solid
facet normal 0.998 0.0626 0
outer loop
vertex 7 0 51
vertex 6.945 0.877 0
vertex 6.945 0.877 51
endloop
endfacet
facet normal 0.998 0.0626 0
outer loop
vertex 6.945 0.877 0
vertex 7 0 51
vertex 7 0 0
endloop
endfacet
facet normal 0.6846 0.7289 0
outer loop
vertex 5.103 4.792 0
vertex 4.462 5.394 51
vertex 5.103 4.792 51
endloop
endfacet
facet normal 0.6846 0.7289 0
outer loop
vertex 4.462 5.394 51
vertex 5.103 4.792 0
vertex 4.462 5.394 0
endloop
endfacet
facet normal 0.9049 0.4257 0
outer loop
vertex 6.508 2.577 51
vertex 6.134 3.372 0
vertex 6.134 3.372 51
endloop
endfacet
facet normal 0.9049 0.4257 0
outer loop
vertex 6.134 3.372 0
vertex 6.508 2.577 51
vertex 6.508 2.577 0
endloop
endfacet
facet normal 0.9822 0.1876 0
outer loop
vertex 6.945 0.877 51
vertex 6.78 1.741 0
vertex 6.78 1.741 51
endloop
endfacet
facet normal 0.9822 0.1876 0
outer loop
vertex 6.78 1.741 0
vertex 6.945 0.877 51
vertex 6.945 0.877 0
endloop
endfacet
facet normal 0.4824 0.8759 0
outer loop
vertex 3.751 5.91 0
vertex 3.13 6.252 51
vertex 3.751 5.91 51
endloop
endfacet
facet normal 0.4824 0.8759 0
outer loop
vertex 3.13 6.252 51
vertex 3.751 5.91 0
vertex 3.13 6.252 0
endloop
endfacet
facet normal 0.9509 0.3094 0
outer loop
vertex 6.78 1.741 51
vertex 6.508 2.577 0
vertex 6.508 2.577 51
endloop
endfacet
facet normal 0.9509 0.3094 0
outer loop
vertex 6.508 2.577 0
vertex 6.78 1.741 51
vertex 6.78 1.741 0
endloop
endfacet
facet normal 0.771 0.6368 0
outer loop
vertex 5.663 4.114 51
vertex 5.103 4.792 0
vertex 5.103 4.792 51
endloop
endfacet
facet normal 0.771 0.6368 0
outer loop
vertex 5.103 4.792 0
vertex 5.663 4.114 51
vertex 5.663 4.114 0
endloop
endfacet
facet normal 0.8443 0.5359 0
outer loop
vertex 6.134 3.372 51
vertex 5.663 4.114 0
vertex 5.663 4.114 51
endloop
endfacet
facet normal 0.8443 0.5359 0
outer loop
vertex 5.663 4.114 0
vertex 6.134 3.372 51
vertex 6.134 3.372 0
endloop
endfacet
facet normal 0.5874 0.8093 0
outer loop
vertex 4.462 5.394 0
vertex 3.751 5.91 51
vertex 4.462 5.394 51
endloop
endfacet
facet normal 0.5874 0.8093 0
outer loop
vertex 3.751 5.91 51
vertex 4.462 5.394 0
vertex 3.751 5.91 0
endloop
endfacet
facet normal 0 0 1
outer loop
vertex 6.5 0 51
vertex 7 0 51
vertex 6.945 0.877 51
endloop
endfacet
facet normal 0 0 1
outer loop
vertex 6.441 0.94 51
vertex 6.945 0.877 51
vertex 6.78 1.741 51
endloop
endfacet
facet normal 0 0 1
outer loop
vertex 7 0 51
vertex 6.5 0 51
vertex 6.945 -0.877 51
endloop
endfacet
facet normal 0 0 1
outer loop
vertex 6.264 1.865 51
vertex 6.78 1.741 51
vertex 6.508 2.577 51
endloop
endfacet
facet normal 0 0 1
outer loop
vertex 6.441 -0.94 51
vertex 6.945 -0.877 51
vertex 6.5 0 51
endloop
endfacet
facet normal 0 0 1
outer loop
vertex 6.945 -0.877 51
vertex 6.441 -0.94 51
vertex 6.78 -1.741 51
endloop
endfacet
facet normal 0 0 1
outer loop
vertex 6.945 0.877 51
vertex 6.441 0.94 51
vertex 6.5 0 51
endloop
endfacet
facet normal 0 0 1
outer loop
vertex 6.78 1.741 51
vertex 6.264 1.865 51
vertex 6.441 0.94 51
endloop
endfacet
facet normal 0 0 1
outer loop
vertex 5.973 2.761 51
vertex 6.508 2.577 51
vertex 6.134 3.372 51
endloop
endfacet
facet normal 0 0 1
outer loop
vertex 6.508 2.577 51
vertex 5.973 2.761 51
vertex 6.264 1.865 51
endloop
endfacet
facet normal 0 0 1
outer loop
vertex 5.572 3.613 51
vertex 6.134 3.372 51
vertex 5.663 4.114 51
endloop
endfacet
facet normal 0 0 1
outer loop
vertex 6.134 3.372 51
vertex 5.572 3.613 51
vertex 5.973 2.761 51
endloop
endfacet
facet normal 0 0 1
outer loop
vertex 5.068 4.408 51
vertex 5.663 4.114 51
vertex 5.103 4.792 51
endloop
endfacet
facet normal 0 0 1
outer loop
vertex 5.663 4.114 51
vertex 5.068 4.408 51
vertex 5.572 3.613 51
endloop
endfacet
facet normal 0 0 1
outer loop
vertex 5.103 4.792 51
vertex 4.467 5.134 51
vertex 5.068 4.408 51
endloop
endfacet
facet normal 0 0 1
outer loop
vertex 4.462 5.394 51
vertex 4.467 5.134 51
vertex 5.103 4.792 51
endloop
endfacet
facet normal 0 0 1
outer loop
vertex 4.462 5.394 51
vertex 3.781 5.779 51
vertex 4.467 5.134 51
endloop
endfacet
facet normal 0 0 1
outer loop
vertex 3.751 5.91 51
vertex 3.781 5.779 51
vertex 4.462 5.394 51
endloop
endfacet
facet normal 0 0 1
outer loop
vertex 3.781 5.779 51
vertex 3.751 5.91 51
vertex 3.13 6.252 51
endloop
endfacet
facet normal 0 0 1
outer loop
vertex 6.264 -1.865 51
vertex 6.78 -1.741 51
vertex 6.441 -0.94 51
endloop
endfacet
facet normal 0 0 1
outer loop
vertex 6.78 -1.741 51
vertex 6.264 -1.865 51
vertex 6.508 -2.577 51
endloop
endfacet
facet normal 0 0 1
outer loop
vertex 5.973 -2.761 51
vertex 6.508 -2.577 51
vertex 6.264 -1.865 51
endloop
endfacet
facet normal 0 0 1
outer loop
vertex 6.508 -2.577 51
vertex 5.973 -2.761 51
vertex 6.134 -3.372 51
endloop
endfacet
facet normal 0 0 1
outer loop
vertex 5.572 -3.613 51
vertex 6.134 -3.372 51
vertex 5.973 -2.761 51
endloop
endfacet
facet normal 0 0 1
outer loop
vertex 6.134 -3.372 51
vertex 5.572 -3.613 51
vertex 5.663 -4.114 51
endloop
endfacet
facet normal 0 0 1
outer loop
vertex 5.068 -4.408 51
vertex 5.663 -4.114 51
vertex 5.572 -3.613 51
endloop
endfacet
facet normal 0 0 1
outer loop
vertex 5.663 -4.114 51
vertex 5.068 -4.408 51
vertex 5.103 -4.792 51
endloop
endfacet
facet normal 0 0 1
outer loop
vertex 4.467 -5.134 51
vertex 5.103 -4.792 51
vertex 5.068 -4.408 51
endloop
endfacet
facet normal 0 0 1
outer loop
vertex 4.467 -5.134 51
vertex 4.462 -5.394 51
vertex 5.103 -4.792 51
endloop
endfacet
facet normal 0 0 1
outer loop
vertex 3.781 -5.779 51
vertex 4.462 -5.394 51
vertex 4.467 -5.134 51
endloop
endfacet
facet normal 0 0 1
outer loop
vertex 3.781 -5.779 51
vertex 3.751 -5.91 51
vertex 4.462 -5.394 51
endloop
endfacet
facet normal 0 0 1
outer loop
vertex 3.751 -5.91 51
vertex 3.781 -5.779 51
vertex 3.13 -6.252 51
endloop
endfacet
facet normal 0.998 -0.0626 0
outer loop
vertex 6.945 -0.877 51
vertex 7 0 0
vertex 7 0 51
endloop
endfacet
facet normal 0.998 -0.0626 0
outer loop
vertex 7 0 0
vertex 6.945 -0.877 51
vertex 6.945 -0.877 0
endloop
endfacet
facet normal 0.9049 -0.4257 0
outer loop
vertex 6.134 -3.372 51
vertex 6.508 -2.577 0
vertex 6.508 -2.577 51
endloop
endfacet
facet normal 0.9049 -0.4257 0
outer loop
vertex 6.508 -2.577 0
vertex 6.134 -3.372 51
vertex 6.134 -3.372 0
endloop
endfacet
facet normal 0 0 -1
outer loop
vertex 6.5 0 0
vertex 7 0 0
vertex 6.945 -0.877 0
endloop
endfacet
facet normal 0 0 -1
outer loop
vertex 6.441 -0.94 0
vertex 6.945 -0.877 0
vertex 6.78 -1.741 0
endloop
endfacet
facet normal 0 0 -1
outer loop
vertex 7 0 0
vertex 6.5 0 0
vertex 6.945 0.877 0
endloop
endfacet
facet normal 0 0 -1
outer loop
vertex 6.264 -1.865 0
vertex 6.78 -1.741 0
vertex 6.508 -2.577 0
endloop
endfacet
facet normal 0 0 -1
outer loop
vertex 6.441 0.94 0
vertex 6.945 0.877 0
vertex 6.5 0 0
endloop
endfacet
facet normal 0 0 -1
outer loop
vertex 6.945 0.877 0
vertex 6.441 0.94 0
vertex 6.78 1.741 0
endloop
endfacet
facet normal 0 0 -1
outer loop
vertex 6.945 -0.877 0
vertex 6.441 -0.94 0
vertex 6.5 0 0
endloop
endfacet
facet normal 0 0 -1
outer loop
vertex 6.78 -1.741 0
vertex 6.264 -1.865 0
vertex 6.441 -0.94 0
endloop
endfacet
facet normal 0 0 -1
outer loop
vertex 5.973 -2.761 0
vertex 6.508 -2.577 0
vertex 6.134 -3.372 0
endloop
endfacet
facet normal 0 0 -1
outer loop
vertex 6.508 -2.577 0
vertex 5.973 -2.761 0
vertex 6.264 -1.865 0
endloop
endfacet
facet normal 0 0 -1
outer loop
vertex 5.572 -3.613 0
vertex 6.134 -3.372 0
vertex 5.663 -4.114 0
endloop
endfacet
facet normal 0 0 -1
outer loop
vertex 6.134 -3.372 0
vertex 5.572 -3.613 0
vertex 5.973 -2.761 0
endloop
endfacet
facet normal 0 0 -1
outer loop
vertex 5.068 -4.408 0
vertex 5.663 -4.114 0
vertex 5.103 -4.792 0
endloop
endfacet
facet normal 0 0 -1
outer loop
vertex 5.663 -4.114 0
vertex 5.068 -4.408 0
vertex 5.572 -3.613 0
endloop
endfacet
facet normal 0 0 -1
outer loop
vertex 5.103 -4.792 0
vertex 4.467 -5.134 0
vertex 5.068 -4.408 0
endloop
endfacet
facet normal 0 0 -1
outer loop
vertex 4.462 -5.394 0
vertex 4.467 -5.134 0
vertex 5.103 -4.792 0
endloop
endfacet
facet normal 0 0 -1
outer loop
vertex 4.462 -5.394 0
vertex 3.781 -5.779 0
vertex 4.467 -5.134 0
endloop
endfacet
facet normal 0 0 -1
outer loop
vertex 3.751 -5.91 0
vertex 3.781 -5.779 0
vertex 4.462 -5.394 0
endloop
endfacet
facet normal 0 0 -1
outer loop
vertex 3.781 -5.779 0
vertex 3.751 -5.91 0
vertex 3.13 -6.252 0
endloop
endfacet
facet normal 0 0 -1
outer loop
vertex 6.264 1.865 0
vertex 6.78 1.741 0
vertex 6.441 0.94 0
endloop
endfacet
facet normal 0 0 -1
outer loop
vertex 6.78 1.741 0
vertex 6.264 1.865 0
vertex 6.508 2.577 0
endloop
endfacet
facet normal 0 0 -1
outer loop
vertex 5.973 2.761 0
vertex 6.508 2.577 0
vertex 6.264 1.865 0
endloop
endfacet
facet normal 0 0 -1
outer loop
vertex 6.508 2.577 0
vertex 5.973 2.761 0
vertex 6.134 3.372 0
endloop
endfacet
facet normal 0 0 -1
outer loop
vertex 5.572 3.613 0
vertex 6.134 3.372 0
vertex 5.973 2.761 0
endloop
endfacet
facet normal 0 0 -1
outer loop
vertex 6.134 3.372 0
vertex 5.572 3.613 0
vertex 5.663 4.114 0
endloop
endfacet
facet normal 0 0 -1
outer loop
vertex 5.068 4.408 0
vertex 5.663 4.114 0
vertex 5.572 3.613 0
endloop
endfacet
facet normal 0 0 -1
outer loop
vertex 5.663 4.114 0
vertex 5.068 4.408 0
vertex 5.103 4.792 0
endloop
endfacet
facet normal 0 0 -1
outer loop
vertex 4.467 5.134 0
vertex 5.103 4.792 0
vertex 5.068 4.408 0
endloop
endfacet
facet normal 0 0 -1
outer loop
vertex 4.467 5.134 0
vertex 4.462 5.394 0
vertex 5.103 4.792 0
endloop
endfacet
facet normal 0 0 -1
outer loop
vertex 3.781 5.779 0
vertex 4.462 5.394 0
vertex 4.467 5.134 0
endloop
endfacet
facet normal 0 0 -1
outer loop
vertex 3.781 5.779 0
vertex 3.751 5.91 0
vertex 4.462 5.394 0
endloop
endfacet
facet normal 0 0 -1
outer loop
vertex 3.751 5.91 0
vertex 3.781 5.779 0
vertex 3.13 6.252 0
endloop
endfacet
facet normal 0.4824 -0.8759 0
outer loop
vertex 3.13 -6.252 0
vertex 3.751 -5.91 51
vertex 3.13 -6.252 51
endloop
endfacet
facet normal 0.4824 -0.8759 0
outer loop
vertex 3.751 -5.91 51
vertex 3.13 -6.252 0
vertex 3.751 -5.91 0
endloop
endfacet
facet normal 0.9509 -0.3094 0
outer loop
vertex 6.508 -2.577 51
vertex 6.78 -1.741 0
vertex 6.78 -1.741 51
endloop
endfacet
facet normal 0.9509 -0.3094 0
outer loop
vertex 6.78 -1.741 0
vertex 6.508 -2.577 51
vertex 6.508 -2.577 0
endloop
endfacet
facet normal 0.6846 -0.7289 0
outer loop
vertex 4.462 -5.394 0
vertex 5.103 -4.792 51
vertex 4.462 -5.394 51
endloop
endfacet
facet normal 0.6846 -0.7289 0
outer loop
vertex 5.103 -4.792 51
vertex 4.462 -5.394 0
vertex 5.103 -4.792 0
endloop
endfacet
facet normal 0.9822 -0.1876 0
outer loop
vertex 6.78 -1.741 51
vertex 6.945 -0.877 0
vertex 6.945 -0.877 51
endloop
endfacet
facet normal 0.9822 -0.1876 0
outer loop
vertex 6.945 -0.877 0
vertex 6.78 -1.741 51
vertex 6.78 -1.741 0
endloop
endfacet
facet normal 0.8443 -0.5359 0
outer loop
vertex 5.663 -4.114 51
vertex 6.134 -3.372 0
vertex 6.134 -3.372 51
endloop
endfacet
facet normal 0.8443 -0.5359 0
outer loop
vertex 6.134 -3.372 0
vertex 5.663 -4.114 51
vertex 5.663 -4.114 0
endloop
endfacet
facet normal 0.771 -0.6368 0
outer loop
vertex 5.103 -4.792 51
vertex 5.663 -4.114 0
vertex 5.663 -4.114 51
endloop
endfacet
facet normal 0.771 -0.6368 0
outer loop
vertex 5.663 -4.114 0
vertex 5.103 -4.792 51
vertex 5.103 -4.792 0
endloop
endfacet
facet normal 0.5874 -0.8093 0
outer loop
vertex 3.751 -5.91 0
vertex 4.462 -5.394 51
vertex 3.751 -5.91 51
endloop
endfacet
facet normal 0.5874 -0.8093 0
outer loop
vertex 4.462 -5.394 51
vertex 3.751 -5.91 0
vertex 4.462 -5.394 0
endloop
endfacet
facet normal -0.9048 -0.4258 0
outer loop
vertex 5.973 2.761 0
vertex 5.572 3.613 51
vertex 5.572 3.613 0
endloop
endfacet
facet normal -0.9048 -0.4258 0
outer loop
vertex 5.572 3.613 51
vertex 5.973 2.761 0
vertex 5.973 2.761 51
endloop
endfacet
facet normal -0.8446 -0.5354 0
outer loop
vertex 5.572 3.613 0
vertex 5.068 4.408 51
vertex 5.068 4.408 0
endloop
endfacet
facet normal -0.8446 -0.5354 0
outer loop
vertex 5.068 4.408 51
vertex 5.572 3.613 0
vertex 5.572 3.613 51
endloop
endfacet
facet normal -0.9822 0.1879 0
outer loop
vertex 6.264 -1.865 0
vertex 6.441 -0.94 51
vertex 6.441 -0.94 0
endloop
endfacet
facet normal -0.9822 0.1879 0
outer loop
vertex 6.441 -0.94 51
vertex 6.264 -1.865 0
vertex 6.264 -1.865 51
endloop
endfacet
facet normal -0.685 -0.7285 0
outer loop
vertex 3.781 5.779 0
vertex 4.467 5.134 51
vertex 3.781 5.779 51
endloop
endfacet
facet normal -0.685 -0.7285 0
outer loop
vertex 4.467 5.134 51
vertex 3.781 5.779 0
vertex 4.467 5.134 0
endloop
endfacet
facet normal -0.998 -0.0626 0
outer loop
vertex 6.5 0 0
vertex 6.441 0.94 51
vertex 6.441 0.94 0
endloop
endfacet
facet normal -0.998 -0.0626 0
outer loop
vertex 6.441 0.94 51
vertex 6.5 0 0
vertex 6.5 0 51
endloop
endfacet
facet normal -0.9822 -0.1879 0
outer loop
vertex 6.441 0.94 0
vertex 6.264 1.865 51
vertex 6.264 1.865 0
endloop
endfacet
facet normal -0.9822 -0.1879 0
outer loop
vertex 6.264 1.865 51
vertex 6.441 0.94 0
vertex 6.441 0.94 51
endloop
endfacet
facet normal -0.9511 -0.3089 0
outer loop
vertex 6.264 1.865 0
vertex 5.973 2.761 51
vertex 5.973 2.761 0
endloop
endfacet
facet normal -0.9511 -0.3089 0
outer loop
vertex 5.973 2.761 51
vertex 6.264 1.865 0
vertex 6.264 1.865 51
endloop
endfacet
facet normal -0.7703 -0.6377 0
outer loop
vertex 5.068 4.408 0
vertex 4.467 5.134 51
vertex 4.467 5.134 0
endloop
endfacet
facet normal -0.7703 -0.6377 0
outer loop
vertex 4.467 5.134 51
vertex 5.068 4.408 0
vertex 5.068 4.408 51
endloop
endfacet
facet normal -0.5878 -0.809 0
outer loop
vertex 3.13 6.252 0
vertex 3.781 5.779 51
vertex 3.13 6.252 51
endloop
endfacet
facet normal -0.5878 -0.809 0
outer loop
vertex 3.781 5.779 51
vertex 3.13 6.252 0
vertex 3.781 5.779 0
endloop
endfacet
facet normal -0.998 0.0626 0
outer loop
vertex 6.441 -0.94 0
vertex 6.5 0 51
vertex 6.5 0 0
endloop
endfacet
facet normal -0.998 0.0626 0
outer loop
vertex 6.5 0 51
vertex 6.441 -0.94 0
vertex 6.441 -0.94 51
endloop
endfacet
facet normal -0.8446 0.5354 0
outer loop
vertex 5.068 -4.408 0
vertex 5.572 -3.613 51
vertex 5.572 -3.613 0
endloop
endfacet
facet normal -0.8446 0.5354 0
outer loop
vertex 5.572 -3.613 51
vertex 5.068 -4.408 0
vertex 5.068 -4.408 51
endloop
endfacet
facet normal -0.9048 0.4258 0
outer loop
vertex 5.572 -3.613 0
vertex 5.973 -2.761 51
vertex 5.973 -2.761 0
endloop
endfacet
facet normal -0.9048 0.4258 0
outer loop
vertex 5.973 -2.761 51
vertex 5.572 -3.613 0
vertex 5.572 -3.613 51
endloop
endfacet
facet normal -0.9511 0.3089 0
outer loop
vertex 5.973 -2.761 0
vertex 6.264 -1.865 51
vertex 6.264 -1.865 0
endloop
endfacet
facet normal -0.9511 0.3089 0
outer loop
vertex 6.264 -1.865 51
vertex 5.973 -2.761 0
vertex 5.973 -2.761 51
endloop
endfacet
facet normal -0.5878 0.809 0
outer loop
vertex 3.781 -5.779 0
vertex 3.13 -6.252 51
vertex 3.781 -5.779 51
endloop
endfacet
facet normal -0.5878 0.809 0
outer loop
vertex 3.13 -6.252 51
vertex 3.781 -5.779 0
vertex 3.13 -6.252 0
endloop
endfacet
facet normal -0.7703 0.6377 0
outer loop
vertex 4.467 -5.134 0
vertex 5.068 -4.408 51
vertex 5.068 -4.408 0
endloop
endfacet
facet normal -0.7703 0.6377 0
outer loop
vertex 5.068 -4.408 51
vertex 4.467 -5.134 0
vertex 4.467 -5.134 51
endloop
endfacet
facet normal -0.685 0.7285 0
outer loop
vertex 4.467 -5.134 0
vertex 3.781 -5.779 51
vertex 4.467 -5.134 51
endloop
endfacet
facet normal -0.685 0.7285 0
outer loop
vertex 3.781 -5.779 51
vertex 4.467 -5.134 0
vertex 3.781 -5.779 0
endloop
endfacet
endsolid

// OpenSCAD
$fn = 50;


difference() {
	union() {
		cylinder(h = 51, r = 7.0000000000);
		translate(v = [-4.0000000000, 0, 0]) {
			cylinder(h = 51, r = 7.0000000000);
		}
	}
	union() {
		cylinder(h = 51, r = 3.2500000000);
		cylinder(h = 51, r = 1.8000000000);
		cylinder(h = 51, r = 1.8000000000);
		cylinder(h = 51, r = 1.8000000000);
		translate(v = [-8.5000000000, 0, 0]) {
			hull() {
				translate(v = [-3.7500000000, 0.0000000000, 0]) {
					cylinder(h = 51, r = 7.5000000000);
				}
				translate(v = [3.7500000000, 0.0000000000, 0]) {
					cylinder(h = 51, r = 7.5000000000);
				}
				translate(v = [-3.7500000000, -0.0000000000, 0]) {
					cylinder(h = 51, r = 7.5000000000);
				}
				translate(v = [3.7500000000, -0.0000000000, 0]) {
					cylinder(h = 51, r = 7.5000000000);
				}
			}
		}
		translate(v = [-1.0000000000, 0, 0.0000000000]) {
			cylinder(h = 51, r = 7.5000000000);
		}
	}
}
